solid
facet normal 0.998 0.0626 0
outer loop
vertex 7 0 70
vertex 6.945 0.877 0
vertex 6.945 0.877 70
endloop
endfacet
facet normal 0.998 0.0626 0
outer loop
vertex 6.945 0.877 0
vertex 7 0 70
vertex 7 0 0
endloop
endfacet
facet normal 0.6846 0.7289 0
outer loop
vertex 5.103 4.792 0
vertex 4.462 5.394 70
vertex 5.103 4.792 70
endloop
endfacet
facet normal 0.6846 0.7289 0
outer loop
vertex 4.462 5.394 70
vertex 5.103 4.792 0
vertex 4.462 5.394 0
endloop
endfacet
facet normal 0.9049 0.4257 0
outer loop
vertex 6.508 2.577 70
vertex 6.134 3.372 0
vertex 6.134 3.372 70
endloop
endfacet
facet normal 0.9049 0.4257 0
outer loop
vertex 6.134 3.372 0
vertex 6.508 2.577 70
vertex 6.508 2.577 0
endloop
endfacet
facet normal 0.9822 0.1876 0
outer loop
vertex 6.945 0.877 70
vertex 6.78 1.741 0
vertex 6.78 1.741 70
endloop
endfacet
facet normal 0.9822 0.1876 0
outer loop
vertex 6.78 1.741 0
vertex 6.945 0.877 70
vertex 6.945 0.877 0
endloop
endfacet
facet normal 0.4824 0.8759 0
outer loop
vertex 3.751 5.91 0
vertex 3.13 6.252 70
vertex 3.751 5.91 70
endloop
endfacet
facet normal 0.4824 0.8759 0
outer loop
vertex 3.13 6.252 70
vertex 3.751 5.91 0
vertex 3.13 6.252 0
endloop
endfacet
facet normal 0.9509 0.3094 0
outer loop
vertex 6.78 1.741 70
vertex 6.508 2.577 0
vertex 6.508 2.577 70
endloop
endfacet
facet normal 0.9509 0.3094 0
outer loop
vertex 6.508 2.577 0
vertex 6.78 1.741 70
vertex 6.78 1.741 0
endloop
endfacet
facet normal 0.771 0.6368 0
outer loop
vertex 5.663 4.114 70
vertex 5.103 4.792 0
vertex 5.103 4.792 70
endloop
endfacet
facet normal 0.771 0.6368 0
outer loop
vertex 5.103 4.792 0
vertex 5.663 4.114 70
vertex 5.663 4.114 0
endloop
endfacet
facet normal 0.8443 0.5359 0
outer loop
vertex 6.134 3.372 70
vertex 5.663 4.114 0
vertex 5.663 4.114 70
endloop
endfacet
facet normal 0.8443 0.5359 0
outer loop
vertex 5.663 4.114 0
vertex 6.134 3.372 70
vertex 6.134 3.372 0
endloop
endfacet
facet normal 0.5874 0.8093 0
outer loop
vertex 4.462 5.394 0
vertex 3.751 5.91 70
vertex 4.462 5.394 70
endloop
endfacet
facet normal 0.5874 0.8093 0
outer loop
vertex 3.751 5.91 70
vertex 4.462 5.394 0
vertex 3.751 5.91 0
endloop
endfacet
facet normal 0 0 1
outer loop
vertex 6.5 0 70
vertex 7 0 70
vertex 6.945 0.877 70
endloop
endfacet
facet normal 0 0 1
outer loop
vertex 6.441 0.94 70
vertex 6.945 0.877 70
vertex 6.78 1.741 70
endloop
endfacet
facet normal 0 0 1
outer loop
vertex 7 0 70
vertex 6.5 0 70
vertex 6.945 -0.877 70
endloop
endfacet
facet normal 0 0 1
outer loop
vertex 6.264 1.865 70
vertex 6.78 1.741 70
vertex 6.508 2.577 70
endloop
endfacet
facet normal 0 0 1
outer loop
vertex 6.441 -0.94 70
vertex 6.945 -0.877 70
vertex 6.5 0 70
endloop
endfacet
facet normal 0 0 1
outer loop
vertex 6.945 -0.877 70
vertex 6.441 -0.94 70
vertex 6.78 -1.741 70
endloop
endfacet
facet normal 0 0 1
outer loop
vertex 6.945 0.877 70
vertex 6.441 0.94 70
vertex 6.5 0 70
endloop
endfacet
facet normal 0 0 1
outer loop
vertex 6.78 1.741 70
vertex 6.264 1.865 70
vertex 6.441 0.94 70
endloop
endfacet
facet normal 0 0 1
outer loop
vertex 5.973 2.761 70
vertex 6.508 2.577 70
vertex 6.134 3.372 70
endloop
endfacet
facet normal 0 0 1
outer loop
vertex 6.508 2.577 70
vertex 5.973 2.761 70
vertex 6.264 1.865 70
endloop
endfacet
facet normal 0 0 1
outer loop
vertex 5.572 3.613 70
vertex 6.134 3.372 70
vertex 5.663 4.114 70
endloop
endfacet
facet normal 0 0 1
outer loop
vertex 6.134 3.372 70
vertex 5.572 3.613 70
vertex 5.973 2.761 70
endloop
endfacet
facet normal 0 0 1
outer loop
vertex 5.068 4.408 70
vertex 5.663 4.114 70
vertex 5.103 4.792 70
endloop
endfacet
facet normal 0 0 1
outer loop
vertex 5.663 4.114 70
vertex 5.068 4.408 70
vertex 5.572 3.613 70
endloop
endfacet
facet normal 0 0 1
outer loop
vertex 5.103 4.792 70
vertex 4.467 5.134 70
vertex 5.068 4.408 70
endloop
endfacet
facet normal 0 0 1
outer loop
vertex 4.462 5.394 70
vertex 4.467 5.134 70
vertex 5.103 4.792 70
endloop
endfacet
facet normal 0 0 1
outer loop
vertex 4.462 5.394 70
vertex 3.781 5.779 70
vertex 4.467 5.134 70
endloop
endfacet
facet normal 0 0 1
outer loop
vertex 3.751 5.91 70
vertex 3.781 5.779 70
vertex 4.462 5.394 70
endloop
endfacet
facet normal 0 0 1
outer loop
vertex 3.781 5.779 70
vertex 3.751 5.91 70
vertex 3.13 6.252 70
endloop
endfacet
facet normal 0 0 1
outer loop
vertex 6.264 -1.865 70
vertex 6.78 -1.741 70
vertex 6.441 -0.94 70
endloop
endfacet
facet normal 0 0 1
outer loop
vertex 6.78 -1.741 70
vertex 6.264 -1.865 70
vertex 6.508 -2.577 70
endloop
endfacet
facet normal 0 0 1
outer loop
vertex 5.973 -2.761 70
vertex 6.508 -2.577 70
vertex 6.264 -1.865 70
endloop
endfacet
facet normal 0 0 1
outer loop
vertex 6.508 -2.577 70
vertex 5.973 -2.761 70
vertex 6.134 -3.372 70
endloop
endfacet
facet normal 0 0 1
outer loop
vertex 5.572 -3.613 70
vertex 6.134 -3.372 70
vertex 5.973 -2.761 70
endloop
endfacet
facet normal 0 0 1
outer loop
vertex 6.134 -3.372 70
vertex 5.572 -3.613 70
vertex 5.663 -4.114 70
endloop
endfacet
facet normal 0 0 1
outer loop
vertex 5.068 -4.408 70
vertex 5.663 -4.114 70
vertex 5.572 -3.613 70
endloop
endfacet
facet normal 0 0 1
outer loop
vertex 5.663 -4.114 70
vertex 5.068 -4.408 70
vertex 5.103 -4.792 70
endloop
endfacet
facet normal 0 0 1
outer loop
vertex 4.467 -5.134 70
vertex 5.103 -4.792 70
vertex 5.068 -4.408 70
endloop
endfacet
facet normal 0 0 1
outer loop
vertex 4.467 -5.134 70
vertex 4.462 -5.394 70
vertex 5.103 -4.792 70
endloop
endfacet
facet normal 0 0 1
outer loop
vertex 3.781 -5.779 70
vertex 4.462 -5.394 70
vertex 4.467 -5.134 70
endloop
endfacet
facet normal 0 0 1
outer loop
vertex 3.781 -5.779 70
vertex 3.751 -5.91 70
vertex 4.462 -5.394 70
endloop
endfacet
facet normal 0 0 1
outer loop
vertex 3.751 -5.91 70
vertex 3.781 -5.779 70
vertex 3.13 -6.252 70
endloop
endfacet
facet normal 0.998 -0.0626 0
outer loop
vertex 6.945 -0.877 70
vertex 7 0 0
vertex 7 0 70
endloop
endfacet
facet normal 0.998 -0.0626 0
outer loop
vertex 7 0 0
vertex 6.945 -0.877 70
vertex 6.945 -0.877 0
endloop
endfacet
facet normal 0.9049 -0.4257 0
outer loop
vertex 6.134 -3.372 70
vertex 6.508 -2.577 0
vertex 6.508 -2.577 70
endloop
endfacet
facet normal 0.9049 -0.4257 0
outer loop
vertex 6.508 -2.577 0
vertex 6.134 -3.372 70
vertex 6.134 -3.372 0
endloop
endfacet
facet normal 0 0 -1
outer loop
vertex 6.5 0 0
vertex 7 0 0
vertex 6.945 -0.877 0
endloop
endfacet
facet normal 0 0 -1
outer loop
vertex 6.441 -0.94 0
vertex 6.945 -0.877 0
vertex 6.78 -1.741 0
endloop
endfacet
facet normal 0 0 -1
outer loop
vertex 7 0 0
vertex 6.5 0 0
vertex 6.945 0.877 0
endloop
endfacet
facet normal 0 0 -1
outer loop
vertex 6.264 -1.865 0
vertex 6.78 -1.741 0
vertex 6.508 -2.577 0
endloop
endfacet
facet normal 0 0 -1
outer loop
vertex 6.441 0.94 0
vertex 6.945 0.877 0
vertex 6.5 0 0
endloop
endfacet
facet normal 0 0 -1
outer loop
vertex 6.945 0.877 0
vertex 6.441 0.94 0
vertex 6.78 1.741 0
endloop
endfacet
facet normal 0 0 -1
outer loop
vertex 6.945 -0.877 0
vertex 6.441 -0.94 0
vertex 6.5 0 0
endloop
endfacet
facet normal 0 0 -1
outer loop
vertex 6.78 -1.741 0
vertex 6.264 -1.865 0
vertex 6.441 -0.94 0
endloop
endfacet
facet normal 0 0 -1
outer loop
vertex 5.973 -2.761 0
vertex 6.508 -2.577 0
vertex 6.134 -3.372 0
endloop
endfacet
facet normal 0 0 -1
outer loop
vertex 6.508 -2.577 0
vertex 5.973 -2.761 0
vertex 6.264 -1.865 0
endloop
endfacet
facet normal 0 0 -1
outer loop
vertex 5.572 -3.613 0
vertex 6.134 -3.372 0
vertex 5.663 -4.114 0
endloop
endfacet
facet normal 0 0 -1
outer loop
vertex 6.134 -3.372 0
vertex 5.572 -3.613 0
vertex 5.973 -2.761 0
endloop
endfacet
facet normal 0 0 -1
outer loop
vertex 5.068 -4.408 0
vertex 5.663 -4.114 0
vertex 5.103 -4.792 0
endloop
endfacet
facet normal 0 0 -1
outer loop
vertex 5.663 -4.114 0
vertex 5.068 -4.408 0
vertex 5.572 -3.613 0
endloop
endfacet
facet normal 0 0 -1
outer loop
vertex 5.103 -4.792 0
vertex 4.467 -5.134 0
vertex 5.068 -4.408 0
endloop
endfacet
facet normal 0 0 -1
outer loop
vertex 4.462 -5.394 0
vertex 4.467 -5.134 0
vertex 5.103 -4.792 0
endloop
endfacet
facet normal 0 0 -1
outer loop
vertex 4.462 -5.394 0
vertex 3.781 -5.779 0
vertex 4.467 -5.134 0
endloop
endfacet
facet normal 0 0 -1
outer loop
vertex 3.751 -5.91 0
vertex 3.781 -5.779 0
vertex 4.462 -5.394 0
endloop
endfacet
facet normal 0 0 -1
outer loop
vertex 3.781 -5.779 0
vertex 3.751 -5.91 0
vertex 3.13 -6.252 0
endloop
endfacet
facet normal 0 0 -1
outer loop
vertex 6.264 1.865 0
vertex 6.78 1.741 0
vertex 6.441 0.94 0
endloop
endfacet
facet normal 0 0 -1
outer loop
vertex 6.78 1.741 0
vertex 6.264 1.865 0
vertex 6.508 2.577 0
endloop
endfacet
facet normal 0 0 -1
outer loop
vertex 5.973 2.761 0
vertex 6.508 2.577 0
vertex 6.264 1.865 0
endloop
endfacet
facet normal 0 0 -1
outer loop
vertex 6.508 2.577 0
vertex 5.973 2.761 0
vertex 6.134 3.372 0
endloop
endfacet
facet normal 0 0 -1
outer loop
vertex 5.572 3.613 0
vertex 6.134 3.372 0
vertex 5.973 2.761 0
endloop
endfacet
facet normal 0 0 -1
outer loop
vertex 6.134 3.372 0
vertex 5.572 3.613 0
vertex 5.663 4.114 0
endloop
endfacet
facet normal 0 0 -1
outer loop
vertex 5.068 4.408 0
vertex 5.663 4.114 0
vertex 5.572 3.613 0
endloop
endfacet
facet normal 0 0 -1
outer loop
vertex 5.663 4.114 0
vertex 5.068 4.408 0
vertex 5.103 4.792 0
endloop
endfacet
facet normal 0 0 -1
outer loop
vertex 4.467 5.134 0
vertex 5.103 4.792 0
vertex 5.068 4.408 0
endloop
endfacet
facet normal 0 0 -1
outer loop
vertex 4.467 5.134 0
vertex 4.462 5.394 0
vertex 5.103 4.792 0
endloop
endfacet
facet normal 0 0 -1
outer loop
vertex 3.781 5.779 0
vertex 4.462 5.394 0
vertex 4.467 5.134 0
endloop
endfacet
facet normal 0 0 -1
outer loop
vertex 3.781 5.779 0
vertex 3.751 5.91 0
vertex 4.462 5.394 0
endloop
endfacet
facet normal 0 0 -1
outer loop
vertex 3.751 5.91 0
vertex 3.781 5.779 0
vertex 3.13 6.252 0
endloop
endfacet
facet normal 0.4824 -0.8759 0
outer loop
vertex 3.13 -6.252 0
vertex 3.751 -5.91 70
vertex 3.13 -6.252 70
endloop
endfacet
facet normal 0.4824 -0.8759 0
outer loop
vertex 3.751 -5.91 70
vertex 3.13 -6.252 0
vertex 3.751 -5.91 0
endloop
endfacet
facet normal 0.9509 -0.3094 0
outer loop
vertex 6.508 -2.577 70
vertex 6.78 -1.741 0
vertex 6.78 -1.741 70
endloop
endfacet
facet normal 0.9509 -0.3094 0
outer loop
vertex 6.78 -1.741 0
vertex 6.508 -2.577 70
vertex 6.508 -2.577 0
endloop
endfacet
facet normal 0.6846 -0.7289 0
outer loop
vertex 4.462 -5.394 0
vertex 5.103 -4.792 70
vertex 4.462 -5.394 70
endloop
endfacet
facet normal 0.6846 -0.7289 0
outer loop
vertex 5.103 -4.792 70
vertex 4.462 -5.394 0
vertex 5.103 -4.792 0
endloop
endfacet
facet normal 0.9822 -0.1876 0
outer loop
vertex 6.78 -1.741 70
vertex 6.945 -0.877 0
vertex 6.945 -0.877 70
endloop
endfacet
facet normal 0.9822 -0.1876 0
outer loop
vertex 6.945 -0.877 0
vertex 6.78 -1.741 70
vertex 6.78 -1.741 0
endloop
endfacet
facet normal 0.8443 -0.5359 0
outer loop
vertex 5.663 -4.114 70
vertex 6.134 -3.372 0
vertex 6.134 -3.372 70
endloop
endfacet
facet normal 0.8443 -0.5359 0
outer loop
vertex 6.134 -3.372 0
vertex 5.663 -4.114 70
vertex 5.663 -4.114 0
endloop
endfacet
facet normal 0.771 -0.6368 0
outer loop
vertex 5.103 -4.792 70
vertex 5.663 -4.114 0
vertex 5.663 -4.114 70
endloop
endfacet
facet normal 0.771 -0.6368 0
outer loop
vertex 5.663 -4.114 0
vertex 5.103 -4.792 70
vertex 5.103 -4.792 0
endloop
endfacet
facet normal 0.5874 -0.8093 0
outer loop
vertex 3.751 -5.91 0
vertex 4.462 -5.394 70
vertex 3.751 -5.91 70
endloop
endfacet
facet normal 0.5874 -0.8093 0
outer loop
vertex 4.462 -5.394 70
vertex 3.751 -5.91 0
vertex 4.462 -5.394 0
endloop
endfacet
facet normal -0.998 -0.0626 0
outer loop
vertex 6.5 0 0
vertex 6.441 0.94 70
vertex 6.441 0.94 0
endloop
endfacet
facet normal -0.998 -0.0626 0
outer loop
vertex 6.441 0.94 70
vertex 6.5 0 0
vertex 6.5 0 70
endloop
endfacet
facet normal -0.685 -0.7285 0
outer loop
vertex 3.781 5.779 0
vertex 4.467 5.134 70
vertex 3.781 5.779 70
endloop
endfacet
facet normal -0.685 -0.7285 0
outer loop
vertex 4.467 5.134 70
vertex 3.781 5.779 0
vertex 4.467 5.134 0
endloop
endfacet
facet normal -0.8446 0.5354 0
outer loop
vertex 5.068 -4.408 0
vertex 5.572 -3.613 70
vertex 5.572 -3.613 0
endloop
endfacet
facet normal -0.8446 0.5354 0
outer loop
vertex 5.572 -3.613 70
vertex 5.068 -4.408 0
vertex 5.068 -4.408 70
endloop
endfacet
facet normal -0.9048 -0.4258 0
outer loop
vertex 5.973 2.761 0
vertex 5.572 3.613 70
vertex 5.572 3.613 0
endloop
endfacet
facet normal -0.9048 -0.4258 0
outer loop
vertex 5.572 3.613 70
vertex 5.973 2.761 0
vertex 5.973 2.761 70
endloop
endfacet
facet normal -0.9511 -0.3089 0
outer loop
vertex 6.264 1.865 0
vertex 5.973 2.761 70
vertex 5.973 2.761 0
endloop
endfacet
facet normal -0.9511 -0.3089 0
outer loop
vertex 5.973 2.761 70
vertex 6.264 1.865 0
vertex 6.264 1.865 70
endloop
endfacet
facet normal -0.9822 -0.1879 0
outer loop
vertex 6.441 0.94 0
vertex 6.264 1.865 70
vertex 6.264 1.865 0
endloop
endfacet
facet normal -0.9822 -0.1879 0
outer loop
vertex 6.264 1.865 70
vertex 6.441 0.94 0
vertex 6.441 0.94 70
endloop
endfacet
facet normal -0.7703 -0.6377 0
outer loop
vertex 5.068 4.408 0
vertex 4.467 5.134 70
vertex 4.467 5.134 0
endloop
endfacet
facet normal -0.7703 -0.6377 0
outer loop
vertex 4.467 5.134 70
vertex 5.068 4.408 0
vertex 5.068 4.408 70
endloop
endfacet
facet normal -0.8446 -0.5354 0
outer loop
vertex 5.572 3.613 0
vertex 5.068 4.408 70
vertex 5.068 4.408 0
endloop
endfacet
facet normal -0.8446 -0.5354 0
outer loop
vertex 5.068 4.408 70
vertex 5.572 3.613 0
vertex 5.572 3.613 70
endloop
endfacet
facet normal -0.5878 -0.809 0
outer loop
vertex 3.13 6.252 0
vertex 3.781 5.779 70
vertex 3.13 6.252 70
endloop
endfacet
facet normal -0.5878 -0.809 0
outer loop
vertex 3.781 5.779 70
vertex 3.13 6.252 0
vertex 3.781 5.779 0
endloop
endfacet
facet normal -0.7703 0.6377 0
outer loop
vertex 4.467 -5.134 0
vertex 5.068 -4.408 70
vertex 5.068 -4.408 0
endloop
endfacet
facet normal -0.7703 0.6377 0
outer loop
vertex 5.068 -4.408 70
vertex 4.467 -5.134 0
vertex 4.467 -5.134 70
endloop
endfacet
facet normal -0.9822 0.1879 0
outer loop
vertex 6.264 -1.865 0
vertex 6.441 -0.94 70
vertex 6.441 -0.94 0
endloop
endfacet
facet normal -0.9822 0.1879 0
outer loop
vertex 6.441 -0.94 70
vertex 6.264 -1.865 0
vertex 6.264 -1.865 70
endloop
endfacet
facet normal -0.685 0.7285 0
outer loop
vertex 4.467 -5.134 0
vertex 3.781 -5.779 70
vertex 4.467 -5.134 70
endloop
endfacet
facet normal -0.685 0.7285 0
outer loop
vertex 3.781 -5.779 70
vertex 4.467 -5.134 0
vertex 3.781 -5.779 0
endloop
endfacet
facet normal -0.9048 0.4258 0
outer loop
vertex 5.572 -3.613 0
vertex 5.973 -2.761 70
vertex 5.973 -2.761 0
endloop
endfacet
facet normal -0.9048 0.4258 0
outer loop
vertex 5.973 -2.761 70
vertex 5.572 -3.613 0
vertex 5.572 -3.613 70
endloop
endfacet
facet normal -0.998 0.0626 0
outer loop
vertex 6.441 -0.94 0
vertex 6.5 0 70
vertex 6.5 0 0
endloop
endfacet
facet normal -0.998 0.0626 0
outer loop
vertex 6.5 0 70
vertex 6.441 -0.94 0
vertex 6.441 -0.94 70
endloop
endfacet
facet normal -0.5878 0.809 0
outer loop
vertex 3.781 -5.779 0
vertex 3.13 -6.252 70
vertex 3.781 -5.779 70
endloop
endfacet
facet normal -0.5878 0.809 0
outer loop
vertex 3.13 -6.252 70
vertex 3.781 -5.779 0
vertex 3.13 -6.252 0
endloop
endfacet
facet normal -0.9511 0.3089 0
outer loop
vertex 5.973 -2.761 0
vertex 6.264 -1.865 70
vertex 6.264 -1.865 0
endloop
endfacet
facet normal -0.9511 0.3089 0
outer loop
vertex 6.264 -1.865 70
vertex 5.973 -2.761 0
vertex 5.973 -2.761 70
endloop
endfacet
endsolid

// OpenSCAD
$fn = 50;


difference() {
	union() {
		cylinder(h = 70, r = 7.0000000000);
		translate(v = [-4.0000000000, 0, 0]) {
			cylinder(h = 70, r = 7.0000000000);
		}
	}
	union() {
		cylinder(h = 70, r = 3.2500000000);
		cylinder(h = 70, r = 1.8000000000);
		cylinder(h = 70, r = 1.8000000000);
		cylinder(h = 70, r = 1.8000000000);
		translate(v = [-8.5000000000, 0, 0]) {
			hull() {
				translate(v = [-3.7500000000, 0.0000000000, 0]) {
					cylinder(h = 70, r = 7.5000000000);
				}
				translate(v = [3.7500000000, 0.0000000000, 0]) {
					cylinder(h = 70, r = 7.5000000000);
				}
				translate(v = [-3.7500000000, -0.0000000000, 0]) {
					cylinder(h = 70, r = 7.5000000000);
				}
				translate(v = [3.7500000000, -0.0000000000, 0]) {
					cylinder(h = 70, r = 7.5000000000);
				}
			}
		}
		translate(v = [-1.0000000000, 0, 0.0000000000]) {
			cylinder(h = 70, r = 7.5000000000);
		}
	}
}
